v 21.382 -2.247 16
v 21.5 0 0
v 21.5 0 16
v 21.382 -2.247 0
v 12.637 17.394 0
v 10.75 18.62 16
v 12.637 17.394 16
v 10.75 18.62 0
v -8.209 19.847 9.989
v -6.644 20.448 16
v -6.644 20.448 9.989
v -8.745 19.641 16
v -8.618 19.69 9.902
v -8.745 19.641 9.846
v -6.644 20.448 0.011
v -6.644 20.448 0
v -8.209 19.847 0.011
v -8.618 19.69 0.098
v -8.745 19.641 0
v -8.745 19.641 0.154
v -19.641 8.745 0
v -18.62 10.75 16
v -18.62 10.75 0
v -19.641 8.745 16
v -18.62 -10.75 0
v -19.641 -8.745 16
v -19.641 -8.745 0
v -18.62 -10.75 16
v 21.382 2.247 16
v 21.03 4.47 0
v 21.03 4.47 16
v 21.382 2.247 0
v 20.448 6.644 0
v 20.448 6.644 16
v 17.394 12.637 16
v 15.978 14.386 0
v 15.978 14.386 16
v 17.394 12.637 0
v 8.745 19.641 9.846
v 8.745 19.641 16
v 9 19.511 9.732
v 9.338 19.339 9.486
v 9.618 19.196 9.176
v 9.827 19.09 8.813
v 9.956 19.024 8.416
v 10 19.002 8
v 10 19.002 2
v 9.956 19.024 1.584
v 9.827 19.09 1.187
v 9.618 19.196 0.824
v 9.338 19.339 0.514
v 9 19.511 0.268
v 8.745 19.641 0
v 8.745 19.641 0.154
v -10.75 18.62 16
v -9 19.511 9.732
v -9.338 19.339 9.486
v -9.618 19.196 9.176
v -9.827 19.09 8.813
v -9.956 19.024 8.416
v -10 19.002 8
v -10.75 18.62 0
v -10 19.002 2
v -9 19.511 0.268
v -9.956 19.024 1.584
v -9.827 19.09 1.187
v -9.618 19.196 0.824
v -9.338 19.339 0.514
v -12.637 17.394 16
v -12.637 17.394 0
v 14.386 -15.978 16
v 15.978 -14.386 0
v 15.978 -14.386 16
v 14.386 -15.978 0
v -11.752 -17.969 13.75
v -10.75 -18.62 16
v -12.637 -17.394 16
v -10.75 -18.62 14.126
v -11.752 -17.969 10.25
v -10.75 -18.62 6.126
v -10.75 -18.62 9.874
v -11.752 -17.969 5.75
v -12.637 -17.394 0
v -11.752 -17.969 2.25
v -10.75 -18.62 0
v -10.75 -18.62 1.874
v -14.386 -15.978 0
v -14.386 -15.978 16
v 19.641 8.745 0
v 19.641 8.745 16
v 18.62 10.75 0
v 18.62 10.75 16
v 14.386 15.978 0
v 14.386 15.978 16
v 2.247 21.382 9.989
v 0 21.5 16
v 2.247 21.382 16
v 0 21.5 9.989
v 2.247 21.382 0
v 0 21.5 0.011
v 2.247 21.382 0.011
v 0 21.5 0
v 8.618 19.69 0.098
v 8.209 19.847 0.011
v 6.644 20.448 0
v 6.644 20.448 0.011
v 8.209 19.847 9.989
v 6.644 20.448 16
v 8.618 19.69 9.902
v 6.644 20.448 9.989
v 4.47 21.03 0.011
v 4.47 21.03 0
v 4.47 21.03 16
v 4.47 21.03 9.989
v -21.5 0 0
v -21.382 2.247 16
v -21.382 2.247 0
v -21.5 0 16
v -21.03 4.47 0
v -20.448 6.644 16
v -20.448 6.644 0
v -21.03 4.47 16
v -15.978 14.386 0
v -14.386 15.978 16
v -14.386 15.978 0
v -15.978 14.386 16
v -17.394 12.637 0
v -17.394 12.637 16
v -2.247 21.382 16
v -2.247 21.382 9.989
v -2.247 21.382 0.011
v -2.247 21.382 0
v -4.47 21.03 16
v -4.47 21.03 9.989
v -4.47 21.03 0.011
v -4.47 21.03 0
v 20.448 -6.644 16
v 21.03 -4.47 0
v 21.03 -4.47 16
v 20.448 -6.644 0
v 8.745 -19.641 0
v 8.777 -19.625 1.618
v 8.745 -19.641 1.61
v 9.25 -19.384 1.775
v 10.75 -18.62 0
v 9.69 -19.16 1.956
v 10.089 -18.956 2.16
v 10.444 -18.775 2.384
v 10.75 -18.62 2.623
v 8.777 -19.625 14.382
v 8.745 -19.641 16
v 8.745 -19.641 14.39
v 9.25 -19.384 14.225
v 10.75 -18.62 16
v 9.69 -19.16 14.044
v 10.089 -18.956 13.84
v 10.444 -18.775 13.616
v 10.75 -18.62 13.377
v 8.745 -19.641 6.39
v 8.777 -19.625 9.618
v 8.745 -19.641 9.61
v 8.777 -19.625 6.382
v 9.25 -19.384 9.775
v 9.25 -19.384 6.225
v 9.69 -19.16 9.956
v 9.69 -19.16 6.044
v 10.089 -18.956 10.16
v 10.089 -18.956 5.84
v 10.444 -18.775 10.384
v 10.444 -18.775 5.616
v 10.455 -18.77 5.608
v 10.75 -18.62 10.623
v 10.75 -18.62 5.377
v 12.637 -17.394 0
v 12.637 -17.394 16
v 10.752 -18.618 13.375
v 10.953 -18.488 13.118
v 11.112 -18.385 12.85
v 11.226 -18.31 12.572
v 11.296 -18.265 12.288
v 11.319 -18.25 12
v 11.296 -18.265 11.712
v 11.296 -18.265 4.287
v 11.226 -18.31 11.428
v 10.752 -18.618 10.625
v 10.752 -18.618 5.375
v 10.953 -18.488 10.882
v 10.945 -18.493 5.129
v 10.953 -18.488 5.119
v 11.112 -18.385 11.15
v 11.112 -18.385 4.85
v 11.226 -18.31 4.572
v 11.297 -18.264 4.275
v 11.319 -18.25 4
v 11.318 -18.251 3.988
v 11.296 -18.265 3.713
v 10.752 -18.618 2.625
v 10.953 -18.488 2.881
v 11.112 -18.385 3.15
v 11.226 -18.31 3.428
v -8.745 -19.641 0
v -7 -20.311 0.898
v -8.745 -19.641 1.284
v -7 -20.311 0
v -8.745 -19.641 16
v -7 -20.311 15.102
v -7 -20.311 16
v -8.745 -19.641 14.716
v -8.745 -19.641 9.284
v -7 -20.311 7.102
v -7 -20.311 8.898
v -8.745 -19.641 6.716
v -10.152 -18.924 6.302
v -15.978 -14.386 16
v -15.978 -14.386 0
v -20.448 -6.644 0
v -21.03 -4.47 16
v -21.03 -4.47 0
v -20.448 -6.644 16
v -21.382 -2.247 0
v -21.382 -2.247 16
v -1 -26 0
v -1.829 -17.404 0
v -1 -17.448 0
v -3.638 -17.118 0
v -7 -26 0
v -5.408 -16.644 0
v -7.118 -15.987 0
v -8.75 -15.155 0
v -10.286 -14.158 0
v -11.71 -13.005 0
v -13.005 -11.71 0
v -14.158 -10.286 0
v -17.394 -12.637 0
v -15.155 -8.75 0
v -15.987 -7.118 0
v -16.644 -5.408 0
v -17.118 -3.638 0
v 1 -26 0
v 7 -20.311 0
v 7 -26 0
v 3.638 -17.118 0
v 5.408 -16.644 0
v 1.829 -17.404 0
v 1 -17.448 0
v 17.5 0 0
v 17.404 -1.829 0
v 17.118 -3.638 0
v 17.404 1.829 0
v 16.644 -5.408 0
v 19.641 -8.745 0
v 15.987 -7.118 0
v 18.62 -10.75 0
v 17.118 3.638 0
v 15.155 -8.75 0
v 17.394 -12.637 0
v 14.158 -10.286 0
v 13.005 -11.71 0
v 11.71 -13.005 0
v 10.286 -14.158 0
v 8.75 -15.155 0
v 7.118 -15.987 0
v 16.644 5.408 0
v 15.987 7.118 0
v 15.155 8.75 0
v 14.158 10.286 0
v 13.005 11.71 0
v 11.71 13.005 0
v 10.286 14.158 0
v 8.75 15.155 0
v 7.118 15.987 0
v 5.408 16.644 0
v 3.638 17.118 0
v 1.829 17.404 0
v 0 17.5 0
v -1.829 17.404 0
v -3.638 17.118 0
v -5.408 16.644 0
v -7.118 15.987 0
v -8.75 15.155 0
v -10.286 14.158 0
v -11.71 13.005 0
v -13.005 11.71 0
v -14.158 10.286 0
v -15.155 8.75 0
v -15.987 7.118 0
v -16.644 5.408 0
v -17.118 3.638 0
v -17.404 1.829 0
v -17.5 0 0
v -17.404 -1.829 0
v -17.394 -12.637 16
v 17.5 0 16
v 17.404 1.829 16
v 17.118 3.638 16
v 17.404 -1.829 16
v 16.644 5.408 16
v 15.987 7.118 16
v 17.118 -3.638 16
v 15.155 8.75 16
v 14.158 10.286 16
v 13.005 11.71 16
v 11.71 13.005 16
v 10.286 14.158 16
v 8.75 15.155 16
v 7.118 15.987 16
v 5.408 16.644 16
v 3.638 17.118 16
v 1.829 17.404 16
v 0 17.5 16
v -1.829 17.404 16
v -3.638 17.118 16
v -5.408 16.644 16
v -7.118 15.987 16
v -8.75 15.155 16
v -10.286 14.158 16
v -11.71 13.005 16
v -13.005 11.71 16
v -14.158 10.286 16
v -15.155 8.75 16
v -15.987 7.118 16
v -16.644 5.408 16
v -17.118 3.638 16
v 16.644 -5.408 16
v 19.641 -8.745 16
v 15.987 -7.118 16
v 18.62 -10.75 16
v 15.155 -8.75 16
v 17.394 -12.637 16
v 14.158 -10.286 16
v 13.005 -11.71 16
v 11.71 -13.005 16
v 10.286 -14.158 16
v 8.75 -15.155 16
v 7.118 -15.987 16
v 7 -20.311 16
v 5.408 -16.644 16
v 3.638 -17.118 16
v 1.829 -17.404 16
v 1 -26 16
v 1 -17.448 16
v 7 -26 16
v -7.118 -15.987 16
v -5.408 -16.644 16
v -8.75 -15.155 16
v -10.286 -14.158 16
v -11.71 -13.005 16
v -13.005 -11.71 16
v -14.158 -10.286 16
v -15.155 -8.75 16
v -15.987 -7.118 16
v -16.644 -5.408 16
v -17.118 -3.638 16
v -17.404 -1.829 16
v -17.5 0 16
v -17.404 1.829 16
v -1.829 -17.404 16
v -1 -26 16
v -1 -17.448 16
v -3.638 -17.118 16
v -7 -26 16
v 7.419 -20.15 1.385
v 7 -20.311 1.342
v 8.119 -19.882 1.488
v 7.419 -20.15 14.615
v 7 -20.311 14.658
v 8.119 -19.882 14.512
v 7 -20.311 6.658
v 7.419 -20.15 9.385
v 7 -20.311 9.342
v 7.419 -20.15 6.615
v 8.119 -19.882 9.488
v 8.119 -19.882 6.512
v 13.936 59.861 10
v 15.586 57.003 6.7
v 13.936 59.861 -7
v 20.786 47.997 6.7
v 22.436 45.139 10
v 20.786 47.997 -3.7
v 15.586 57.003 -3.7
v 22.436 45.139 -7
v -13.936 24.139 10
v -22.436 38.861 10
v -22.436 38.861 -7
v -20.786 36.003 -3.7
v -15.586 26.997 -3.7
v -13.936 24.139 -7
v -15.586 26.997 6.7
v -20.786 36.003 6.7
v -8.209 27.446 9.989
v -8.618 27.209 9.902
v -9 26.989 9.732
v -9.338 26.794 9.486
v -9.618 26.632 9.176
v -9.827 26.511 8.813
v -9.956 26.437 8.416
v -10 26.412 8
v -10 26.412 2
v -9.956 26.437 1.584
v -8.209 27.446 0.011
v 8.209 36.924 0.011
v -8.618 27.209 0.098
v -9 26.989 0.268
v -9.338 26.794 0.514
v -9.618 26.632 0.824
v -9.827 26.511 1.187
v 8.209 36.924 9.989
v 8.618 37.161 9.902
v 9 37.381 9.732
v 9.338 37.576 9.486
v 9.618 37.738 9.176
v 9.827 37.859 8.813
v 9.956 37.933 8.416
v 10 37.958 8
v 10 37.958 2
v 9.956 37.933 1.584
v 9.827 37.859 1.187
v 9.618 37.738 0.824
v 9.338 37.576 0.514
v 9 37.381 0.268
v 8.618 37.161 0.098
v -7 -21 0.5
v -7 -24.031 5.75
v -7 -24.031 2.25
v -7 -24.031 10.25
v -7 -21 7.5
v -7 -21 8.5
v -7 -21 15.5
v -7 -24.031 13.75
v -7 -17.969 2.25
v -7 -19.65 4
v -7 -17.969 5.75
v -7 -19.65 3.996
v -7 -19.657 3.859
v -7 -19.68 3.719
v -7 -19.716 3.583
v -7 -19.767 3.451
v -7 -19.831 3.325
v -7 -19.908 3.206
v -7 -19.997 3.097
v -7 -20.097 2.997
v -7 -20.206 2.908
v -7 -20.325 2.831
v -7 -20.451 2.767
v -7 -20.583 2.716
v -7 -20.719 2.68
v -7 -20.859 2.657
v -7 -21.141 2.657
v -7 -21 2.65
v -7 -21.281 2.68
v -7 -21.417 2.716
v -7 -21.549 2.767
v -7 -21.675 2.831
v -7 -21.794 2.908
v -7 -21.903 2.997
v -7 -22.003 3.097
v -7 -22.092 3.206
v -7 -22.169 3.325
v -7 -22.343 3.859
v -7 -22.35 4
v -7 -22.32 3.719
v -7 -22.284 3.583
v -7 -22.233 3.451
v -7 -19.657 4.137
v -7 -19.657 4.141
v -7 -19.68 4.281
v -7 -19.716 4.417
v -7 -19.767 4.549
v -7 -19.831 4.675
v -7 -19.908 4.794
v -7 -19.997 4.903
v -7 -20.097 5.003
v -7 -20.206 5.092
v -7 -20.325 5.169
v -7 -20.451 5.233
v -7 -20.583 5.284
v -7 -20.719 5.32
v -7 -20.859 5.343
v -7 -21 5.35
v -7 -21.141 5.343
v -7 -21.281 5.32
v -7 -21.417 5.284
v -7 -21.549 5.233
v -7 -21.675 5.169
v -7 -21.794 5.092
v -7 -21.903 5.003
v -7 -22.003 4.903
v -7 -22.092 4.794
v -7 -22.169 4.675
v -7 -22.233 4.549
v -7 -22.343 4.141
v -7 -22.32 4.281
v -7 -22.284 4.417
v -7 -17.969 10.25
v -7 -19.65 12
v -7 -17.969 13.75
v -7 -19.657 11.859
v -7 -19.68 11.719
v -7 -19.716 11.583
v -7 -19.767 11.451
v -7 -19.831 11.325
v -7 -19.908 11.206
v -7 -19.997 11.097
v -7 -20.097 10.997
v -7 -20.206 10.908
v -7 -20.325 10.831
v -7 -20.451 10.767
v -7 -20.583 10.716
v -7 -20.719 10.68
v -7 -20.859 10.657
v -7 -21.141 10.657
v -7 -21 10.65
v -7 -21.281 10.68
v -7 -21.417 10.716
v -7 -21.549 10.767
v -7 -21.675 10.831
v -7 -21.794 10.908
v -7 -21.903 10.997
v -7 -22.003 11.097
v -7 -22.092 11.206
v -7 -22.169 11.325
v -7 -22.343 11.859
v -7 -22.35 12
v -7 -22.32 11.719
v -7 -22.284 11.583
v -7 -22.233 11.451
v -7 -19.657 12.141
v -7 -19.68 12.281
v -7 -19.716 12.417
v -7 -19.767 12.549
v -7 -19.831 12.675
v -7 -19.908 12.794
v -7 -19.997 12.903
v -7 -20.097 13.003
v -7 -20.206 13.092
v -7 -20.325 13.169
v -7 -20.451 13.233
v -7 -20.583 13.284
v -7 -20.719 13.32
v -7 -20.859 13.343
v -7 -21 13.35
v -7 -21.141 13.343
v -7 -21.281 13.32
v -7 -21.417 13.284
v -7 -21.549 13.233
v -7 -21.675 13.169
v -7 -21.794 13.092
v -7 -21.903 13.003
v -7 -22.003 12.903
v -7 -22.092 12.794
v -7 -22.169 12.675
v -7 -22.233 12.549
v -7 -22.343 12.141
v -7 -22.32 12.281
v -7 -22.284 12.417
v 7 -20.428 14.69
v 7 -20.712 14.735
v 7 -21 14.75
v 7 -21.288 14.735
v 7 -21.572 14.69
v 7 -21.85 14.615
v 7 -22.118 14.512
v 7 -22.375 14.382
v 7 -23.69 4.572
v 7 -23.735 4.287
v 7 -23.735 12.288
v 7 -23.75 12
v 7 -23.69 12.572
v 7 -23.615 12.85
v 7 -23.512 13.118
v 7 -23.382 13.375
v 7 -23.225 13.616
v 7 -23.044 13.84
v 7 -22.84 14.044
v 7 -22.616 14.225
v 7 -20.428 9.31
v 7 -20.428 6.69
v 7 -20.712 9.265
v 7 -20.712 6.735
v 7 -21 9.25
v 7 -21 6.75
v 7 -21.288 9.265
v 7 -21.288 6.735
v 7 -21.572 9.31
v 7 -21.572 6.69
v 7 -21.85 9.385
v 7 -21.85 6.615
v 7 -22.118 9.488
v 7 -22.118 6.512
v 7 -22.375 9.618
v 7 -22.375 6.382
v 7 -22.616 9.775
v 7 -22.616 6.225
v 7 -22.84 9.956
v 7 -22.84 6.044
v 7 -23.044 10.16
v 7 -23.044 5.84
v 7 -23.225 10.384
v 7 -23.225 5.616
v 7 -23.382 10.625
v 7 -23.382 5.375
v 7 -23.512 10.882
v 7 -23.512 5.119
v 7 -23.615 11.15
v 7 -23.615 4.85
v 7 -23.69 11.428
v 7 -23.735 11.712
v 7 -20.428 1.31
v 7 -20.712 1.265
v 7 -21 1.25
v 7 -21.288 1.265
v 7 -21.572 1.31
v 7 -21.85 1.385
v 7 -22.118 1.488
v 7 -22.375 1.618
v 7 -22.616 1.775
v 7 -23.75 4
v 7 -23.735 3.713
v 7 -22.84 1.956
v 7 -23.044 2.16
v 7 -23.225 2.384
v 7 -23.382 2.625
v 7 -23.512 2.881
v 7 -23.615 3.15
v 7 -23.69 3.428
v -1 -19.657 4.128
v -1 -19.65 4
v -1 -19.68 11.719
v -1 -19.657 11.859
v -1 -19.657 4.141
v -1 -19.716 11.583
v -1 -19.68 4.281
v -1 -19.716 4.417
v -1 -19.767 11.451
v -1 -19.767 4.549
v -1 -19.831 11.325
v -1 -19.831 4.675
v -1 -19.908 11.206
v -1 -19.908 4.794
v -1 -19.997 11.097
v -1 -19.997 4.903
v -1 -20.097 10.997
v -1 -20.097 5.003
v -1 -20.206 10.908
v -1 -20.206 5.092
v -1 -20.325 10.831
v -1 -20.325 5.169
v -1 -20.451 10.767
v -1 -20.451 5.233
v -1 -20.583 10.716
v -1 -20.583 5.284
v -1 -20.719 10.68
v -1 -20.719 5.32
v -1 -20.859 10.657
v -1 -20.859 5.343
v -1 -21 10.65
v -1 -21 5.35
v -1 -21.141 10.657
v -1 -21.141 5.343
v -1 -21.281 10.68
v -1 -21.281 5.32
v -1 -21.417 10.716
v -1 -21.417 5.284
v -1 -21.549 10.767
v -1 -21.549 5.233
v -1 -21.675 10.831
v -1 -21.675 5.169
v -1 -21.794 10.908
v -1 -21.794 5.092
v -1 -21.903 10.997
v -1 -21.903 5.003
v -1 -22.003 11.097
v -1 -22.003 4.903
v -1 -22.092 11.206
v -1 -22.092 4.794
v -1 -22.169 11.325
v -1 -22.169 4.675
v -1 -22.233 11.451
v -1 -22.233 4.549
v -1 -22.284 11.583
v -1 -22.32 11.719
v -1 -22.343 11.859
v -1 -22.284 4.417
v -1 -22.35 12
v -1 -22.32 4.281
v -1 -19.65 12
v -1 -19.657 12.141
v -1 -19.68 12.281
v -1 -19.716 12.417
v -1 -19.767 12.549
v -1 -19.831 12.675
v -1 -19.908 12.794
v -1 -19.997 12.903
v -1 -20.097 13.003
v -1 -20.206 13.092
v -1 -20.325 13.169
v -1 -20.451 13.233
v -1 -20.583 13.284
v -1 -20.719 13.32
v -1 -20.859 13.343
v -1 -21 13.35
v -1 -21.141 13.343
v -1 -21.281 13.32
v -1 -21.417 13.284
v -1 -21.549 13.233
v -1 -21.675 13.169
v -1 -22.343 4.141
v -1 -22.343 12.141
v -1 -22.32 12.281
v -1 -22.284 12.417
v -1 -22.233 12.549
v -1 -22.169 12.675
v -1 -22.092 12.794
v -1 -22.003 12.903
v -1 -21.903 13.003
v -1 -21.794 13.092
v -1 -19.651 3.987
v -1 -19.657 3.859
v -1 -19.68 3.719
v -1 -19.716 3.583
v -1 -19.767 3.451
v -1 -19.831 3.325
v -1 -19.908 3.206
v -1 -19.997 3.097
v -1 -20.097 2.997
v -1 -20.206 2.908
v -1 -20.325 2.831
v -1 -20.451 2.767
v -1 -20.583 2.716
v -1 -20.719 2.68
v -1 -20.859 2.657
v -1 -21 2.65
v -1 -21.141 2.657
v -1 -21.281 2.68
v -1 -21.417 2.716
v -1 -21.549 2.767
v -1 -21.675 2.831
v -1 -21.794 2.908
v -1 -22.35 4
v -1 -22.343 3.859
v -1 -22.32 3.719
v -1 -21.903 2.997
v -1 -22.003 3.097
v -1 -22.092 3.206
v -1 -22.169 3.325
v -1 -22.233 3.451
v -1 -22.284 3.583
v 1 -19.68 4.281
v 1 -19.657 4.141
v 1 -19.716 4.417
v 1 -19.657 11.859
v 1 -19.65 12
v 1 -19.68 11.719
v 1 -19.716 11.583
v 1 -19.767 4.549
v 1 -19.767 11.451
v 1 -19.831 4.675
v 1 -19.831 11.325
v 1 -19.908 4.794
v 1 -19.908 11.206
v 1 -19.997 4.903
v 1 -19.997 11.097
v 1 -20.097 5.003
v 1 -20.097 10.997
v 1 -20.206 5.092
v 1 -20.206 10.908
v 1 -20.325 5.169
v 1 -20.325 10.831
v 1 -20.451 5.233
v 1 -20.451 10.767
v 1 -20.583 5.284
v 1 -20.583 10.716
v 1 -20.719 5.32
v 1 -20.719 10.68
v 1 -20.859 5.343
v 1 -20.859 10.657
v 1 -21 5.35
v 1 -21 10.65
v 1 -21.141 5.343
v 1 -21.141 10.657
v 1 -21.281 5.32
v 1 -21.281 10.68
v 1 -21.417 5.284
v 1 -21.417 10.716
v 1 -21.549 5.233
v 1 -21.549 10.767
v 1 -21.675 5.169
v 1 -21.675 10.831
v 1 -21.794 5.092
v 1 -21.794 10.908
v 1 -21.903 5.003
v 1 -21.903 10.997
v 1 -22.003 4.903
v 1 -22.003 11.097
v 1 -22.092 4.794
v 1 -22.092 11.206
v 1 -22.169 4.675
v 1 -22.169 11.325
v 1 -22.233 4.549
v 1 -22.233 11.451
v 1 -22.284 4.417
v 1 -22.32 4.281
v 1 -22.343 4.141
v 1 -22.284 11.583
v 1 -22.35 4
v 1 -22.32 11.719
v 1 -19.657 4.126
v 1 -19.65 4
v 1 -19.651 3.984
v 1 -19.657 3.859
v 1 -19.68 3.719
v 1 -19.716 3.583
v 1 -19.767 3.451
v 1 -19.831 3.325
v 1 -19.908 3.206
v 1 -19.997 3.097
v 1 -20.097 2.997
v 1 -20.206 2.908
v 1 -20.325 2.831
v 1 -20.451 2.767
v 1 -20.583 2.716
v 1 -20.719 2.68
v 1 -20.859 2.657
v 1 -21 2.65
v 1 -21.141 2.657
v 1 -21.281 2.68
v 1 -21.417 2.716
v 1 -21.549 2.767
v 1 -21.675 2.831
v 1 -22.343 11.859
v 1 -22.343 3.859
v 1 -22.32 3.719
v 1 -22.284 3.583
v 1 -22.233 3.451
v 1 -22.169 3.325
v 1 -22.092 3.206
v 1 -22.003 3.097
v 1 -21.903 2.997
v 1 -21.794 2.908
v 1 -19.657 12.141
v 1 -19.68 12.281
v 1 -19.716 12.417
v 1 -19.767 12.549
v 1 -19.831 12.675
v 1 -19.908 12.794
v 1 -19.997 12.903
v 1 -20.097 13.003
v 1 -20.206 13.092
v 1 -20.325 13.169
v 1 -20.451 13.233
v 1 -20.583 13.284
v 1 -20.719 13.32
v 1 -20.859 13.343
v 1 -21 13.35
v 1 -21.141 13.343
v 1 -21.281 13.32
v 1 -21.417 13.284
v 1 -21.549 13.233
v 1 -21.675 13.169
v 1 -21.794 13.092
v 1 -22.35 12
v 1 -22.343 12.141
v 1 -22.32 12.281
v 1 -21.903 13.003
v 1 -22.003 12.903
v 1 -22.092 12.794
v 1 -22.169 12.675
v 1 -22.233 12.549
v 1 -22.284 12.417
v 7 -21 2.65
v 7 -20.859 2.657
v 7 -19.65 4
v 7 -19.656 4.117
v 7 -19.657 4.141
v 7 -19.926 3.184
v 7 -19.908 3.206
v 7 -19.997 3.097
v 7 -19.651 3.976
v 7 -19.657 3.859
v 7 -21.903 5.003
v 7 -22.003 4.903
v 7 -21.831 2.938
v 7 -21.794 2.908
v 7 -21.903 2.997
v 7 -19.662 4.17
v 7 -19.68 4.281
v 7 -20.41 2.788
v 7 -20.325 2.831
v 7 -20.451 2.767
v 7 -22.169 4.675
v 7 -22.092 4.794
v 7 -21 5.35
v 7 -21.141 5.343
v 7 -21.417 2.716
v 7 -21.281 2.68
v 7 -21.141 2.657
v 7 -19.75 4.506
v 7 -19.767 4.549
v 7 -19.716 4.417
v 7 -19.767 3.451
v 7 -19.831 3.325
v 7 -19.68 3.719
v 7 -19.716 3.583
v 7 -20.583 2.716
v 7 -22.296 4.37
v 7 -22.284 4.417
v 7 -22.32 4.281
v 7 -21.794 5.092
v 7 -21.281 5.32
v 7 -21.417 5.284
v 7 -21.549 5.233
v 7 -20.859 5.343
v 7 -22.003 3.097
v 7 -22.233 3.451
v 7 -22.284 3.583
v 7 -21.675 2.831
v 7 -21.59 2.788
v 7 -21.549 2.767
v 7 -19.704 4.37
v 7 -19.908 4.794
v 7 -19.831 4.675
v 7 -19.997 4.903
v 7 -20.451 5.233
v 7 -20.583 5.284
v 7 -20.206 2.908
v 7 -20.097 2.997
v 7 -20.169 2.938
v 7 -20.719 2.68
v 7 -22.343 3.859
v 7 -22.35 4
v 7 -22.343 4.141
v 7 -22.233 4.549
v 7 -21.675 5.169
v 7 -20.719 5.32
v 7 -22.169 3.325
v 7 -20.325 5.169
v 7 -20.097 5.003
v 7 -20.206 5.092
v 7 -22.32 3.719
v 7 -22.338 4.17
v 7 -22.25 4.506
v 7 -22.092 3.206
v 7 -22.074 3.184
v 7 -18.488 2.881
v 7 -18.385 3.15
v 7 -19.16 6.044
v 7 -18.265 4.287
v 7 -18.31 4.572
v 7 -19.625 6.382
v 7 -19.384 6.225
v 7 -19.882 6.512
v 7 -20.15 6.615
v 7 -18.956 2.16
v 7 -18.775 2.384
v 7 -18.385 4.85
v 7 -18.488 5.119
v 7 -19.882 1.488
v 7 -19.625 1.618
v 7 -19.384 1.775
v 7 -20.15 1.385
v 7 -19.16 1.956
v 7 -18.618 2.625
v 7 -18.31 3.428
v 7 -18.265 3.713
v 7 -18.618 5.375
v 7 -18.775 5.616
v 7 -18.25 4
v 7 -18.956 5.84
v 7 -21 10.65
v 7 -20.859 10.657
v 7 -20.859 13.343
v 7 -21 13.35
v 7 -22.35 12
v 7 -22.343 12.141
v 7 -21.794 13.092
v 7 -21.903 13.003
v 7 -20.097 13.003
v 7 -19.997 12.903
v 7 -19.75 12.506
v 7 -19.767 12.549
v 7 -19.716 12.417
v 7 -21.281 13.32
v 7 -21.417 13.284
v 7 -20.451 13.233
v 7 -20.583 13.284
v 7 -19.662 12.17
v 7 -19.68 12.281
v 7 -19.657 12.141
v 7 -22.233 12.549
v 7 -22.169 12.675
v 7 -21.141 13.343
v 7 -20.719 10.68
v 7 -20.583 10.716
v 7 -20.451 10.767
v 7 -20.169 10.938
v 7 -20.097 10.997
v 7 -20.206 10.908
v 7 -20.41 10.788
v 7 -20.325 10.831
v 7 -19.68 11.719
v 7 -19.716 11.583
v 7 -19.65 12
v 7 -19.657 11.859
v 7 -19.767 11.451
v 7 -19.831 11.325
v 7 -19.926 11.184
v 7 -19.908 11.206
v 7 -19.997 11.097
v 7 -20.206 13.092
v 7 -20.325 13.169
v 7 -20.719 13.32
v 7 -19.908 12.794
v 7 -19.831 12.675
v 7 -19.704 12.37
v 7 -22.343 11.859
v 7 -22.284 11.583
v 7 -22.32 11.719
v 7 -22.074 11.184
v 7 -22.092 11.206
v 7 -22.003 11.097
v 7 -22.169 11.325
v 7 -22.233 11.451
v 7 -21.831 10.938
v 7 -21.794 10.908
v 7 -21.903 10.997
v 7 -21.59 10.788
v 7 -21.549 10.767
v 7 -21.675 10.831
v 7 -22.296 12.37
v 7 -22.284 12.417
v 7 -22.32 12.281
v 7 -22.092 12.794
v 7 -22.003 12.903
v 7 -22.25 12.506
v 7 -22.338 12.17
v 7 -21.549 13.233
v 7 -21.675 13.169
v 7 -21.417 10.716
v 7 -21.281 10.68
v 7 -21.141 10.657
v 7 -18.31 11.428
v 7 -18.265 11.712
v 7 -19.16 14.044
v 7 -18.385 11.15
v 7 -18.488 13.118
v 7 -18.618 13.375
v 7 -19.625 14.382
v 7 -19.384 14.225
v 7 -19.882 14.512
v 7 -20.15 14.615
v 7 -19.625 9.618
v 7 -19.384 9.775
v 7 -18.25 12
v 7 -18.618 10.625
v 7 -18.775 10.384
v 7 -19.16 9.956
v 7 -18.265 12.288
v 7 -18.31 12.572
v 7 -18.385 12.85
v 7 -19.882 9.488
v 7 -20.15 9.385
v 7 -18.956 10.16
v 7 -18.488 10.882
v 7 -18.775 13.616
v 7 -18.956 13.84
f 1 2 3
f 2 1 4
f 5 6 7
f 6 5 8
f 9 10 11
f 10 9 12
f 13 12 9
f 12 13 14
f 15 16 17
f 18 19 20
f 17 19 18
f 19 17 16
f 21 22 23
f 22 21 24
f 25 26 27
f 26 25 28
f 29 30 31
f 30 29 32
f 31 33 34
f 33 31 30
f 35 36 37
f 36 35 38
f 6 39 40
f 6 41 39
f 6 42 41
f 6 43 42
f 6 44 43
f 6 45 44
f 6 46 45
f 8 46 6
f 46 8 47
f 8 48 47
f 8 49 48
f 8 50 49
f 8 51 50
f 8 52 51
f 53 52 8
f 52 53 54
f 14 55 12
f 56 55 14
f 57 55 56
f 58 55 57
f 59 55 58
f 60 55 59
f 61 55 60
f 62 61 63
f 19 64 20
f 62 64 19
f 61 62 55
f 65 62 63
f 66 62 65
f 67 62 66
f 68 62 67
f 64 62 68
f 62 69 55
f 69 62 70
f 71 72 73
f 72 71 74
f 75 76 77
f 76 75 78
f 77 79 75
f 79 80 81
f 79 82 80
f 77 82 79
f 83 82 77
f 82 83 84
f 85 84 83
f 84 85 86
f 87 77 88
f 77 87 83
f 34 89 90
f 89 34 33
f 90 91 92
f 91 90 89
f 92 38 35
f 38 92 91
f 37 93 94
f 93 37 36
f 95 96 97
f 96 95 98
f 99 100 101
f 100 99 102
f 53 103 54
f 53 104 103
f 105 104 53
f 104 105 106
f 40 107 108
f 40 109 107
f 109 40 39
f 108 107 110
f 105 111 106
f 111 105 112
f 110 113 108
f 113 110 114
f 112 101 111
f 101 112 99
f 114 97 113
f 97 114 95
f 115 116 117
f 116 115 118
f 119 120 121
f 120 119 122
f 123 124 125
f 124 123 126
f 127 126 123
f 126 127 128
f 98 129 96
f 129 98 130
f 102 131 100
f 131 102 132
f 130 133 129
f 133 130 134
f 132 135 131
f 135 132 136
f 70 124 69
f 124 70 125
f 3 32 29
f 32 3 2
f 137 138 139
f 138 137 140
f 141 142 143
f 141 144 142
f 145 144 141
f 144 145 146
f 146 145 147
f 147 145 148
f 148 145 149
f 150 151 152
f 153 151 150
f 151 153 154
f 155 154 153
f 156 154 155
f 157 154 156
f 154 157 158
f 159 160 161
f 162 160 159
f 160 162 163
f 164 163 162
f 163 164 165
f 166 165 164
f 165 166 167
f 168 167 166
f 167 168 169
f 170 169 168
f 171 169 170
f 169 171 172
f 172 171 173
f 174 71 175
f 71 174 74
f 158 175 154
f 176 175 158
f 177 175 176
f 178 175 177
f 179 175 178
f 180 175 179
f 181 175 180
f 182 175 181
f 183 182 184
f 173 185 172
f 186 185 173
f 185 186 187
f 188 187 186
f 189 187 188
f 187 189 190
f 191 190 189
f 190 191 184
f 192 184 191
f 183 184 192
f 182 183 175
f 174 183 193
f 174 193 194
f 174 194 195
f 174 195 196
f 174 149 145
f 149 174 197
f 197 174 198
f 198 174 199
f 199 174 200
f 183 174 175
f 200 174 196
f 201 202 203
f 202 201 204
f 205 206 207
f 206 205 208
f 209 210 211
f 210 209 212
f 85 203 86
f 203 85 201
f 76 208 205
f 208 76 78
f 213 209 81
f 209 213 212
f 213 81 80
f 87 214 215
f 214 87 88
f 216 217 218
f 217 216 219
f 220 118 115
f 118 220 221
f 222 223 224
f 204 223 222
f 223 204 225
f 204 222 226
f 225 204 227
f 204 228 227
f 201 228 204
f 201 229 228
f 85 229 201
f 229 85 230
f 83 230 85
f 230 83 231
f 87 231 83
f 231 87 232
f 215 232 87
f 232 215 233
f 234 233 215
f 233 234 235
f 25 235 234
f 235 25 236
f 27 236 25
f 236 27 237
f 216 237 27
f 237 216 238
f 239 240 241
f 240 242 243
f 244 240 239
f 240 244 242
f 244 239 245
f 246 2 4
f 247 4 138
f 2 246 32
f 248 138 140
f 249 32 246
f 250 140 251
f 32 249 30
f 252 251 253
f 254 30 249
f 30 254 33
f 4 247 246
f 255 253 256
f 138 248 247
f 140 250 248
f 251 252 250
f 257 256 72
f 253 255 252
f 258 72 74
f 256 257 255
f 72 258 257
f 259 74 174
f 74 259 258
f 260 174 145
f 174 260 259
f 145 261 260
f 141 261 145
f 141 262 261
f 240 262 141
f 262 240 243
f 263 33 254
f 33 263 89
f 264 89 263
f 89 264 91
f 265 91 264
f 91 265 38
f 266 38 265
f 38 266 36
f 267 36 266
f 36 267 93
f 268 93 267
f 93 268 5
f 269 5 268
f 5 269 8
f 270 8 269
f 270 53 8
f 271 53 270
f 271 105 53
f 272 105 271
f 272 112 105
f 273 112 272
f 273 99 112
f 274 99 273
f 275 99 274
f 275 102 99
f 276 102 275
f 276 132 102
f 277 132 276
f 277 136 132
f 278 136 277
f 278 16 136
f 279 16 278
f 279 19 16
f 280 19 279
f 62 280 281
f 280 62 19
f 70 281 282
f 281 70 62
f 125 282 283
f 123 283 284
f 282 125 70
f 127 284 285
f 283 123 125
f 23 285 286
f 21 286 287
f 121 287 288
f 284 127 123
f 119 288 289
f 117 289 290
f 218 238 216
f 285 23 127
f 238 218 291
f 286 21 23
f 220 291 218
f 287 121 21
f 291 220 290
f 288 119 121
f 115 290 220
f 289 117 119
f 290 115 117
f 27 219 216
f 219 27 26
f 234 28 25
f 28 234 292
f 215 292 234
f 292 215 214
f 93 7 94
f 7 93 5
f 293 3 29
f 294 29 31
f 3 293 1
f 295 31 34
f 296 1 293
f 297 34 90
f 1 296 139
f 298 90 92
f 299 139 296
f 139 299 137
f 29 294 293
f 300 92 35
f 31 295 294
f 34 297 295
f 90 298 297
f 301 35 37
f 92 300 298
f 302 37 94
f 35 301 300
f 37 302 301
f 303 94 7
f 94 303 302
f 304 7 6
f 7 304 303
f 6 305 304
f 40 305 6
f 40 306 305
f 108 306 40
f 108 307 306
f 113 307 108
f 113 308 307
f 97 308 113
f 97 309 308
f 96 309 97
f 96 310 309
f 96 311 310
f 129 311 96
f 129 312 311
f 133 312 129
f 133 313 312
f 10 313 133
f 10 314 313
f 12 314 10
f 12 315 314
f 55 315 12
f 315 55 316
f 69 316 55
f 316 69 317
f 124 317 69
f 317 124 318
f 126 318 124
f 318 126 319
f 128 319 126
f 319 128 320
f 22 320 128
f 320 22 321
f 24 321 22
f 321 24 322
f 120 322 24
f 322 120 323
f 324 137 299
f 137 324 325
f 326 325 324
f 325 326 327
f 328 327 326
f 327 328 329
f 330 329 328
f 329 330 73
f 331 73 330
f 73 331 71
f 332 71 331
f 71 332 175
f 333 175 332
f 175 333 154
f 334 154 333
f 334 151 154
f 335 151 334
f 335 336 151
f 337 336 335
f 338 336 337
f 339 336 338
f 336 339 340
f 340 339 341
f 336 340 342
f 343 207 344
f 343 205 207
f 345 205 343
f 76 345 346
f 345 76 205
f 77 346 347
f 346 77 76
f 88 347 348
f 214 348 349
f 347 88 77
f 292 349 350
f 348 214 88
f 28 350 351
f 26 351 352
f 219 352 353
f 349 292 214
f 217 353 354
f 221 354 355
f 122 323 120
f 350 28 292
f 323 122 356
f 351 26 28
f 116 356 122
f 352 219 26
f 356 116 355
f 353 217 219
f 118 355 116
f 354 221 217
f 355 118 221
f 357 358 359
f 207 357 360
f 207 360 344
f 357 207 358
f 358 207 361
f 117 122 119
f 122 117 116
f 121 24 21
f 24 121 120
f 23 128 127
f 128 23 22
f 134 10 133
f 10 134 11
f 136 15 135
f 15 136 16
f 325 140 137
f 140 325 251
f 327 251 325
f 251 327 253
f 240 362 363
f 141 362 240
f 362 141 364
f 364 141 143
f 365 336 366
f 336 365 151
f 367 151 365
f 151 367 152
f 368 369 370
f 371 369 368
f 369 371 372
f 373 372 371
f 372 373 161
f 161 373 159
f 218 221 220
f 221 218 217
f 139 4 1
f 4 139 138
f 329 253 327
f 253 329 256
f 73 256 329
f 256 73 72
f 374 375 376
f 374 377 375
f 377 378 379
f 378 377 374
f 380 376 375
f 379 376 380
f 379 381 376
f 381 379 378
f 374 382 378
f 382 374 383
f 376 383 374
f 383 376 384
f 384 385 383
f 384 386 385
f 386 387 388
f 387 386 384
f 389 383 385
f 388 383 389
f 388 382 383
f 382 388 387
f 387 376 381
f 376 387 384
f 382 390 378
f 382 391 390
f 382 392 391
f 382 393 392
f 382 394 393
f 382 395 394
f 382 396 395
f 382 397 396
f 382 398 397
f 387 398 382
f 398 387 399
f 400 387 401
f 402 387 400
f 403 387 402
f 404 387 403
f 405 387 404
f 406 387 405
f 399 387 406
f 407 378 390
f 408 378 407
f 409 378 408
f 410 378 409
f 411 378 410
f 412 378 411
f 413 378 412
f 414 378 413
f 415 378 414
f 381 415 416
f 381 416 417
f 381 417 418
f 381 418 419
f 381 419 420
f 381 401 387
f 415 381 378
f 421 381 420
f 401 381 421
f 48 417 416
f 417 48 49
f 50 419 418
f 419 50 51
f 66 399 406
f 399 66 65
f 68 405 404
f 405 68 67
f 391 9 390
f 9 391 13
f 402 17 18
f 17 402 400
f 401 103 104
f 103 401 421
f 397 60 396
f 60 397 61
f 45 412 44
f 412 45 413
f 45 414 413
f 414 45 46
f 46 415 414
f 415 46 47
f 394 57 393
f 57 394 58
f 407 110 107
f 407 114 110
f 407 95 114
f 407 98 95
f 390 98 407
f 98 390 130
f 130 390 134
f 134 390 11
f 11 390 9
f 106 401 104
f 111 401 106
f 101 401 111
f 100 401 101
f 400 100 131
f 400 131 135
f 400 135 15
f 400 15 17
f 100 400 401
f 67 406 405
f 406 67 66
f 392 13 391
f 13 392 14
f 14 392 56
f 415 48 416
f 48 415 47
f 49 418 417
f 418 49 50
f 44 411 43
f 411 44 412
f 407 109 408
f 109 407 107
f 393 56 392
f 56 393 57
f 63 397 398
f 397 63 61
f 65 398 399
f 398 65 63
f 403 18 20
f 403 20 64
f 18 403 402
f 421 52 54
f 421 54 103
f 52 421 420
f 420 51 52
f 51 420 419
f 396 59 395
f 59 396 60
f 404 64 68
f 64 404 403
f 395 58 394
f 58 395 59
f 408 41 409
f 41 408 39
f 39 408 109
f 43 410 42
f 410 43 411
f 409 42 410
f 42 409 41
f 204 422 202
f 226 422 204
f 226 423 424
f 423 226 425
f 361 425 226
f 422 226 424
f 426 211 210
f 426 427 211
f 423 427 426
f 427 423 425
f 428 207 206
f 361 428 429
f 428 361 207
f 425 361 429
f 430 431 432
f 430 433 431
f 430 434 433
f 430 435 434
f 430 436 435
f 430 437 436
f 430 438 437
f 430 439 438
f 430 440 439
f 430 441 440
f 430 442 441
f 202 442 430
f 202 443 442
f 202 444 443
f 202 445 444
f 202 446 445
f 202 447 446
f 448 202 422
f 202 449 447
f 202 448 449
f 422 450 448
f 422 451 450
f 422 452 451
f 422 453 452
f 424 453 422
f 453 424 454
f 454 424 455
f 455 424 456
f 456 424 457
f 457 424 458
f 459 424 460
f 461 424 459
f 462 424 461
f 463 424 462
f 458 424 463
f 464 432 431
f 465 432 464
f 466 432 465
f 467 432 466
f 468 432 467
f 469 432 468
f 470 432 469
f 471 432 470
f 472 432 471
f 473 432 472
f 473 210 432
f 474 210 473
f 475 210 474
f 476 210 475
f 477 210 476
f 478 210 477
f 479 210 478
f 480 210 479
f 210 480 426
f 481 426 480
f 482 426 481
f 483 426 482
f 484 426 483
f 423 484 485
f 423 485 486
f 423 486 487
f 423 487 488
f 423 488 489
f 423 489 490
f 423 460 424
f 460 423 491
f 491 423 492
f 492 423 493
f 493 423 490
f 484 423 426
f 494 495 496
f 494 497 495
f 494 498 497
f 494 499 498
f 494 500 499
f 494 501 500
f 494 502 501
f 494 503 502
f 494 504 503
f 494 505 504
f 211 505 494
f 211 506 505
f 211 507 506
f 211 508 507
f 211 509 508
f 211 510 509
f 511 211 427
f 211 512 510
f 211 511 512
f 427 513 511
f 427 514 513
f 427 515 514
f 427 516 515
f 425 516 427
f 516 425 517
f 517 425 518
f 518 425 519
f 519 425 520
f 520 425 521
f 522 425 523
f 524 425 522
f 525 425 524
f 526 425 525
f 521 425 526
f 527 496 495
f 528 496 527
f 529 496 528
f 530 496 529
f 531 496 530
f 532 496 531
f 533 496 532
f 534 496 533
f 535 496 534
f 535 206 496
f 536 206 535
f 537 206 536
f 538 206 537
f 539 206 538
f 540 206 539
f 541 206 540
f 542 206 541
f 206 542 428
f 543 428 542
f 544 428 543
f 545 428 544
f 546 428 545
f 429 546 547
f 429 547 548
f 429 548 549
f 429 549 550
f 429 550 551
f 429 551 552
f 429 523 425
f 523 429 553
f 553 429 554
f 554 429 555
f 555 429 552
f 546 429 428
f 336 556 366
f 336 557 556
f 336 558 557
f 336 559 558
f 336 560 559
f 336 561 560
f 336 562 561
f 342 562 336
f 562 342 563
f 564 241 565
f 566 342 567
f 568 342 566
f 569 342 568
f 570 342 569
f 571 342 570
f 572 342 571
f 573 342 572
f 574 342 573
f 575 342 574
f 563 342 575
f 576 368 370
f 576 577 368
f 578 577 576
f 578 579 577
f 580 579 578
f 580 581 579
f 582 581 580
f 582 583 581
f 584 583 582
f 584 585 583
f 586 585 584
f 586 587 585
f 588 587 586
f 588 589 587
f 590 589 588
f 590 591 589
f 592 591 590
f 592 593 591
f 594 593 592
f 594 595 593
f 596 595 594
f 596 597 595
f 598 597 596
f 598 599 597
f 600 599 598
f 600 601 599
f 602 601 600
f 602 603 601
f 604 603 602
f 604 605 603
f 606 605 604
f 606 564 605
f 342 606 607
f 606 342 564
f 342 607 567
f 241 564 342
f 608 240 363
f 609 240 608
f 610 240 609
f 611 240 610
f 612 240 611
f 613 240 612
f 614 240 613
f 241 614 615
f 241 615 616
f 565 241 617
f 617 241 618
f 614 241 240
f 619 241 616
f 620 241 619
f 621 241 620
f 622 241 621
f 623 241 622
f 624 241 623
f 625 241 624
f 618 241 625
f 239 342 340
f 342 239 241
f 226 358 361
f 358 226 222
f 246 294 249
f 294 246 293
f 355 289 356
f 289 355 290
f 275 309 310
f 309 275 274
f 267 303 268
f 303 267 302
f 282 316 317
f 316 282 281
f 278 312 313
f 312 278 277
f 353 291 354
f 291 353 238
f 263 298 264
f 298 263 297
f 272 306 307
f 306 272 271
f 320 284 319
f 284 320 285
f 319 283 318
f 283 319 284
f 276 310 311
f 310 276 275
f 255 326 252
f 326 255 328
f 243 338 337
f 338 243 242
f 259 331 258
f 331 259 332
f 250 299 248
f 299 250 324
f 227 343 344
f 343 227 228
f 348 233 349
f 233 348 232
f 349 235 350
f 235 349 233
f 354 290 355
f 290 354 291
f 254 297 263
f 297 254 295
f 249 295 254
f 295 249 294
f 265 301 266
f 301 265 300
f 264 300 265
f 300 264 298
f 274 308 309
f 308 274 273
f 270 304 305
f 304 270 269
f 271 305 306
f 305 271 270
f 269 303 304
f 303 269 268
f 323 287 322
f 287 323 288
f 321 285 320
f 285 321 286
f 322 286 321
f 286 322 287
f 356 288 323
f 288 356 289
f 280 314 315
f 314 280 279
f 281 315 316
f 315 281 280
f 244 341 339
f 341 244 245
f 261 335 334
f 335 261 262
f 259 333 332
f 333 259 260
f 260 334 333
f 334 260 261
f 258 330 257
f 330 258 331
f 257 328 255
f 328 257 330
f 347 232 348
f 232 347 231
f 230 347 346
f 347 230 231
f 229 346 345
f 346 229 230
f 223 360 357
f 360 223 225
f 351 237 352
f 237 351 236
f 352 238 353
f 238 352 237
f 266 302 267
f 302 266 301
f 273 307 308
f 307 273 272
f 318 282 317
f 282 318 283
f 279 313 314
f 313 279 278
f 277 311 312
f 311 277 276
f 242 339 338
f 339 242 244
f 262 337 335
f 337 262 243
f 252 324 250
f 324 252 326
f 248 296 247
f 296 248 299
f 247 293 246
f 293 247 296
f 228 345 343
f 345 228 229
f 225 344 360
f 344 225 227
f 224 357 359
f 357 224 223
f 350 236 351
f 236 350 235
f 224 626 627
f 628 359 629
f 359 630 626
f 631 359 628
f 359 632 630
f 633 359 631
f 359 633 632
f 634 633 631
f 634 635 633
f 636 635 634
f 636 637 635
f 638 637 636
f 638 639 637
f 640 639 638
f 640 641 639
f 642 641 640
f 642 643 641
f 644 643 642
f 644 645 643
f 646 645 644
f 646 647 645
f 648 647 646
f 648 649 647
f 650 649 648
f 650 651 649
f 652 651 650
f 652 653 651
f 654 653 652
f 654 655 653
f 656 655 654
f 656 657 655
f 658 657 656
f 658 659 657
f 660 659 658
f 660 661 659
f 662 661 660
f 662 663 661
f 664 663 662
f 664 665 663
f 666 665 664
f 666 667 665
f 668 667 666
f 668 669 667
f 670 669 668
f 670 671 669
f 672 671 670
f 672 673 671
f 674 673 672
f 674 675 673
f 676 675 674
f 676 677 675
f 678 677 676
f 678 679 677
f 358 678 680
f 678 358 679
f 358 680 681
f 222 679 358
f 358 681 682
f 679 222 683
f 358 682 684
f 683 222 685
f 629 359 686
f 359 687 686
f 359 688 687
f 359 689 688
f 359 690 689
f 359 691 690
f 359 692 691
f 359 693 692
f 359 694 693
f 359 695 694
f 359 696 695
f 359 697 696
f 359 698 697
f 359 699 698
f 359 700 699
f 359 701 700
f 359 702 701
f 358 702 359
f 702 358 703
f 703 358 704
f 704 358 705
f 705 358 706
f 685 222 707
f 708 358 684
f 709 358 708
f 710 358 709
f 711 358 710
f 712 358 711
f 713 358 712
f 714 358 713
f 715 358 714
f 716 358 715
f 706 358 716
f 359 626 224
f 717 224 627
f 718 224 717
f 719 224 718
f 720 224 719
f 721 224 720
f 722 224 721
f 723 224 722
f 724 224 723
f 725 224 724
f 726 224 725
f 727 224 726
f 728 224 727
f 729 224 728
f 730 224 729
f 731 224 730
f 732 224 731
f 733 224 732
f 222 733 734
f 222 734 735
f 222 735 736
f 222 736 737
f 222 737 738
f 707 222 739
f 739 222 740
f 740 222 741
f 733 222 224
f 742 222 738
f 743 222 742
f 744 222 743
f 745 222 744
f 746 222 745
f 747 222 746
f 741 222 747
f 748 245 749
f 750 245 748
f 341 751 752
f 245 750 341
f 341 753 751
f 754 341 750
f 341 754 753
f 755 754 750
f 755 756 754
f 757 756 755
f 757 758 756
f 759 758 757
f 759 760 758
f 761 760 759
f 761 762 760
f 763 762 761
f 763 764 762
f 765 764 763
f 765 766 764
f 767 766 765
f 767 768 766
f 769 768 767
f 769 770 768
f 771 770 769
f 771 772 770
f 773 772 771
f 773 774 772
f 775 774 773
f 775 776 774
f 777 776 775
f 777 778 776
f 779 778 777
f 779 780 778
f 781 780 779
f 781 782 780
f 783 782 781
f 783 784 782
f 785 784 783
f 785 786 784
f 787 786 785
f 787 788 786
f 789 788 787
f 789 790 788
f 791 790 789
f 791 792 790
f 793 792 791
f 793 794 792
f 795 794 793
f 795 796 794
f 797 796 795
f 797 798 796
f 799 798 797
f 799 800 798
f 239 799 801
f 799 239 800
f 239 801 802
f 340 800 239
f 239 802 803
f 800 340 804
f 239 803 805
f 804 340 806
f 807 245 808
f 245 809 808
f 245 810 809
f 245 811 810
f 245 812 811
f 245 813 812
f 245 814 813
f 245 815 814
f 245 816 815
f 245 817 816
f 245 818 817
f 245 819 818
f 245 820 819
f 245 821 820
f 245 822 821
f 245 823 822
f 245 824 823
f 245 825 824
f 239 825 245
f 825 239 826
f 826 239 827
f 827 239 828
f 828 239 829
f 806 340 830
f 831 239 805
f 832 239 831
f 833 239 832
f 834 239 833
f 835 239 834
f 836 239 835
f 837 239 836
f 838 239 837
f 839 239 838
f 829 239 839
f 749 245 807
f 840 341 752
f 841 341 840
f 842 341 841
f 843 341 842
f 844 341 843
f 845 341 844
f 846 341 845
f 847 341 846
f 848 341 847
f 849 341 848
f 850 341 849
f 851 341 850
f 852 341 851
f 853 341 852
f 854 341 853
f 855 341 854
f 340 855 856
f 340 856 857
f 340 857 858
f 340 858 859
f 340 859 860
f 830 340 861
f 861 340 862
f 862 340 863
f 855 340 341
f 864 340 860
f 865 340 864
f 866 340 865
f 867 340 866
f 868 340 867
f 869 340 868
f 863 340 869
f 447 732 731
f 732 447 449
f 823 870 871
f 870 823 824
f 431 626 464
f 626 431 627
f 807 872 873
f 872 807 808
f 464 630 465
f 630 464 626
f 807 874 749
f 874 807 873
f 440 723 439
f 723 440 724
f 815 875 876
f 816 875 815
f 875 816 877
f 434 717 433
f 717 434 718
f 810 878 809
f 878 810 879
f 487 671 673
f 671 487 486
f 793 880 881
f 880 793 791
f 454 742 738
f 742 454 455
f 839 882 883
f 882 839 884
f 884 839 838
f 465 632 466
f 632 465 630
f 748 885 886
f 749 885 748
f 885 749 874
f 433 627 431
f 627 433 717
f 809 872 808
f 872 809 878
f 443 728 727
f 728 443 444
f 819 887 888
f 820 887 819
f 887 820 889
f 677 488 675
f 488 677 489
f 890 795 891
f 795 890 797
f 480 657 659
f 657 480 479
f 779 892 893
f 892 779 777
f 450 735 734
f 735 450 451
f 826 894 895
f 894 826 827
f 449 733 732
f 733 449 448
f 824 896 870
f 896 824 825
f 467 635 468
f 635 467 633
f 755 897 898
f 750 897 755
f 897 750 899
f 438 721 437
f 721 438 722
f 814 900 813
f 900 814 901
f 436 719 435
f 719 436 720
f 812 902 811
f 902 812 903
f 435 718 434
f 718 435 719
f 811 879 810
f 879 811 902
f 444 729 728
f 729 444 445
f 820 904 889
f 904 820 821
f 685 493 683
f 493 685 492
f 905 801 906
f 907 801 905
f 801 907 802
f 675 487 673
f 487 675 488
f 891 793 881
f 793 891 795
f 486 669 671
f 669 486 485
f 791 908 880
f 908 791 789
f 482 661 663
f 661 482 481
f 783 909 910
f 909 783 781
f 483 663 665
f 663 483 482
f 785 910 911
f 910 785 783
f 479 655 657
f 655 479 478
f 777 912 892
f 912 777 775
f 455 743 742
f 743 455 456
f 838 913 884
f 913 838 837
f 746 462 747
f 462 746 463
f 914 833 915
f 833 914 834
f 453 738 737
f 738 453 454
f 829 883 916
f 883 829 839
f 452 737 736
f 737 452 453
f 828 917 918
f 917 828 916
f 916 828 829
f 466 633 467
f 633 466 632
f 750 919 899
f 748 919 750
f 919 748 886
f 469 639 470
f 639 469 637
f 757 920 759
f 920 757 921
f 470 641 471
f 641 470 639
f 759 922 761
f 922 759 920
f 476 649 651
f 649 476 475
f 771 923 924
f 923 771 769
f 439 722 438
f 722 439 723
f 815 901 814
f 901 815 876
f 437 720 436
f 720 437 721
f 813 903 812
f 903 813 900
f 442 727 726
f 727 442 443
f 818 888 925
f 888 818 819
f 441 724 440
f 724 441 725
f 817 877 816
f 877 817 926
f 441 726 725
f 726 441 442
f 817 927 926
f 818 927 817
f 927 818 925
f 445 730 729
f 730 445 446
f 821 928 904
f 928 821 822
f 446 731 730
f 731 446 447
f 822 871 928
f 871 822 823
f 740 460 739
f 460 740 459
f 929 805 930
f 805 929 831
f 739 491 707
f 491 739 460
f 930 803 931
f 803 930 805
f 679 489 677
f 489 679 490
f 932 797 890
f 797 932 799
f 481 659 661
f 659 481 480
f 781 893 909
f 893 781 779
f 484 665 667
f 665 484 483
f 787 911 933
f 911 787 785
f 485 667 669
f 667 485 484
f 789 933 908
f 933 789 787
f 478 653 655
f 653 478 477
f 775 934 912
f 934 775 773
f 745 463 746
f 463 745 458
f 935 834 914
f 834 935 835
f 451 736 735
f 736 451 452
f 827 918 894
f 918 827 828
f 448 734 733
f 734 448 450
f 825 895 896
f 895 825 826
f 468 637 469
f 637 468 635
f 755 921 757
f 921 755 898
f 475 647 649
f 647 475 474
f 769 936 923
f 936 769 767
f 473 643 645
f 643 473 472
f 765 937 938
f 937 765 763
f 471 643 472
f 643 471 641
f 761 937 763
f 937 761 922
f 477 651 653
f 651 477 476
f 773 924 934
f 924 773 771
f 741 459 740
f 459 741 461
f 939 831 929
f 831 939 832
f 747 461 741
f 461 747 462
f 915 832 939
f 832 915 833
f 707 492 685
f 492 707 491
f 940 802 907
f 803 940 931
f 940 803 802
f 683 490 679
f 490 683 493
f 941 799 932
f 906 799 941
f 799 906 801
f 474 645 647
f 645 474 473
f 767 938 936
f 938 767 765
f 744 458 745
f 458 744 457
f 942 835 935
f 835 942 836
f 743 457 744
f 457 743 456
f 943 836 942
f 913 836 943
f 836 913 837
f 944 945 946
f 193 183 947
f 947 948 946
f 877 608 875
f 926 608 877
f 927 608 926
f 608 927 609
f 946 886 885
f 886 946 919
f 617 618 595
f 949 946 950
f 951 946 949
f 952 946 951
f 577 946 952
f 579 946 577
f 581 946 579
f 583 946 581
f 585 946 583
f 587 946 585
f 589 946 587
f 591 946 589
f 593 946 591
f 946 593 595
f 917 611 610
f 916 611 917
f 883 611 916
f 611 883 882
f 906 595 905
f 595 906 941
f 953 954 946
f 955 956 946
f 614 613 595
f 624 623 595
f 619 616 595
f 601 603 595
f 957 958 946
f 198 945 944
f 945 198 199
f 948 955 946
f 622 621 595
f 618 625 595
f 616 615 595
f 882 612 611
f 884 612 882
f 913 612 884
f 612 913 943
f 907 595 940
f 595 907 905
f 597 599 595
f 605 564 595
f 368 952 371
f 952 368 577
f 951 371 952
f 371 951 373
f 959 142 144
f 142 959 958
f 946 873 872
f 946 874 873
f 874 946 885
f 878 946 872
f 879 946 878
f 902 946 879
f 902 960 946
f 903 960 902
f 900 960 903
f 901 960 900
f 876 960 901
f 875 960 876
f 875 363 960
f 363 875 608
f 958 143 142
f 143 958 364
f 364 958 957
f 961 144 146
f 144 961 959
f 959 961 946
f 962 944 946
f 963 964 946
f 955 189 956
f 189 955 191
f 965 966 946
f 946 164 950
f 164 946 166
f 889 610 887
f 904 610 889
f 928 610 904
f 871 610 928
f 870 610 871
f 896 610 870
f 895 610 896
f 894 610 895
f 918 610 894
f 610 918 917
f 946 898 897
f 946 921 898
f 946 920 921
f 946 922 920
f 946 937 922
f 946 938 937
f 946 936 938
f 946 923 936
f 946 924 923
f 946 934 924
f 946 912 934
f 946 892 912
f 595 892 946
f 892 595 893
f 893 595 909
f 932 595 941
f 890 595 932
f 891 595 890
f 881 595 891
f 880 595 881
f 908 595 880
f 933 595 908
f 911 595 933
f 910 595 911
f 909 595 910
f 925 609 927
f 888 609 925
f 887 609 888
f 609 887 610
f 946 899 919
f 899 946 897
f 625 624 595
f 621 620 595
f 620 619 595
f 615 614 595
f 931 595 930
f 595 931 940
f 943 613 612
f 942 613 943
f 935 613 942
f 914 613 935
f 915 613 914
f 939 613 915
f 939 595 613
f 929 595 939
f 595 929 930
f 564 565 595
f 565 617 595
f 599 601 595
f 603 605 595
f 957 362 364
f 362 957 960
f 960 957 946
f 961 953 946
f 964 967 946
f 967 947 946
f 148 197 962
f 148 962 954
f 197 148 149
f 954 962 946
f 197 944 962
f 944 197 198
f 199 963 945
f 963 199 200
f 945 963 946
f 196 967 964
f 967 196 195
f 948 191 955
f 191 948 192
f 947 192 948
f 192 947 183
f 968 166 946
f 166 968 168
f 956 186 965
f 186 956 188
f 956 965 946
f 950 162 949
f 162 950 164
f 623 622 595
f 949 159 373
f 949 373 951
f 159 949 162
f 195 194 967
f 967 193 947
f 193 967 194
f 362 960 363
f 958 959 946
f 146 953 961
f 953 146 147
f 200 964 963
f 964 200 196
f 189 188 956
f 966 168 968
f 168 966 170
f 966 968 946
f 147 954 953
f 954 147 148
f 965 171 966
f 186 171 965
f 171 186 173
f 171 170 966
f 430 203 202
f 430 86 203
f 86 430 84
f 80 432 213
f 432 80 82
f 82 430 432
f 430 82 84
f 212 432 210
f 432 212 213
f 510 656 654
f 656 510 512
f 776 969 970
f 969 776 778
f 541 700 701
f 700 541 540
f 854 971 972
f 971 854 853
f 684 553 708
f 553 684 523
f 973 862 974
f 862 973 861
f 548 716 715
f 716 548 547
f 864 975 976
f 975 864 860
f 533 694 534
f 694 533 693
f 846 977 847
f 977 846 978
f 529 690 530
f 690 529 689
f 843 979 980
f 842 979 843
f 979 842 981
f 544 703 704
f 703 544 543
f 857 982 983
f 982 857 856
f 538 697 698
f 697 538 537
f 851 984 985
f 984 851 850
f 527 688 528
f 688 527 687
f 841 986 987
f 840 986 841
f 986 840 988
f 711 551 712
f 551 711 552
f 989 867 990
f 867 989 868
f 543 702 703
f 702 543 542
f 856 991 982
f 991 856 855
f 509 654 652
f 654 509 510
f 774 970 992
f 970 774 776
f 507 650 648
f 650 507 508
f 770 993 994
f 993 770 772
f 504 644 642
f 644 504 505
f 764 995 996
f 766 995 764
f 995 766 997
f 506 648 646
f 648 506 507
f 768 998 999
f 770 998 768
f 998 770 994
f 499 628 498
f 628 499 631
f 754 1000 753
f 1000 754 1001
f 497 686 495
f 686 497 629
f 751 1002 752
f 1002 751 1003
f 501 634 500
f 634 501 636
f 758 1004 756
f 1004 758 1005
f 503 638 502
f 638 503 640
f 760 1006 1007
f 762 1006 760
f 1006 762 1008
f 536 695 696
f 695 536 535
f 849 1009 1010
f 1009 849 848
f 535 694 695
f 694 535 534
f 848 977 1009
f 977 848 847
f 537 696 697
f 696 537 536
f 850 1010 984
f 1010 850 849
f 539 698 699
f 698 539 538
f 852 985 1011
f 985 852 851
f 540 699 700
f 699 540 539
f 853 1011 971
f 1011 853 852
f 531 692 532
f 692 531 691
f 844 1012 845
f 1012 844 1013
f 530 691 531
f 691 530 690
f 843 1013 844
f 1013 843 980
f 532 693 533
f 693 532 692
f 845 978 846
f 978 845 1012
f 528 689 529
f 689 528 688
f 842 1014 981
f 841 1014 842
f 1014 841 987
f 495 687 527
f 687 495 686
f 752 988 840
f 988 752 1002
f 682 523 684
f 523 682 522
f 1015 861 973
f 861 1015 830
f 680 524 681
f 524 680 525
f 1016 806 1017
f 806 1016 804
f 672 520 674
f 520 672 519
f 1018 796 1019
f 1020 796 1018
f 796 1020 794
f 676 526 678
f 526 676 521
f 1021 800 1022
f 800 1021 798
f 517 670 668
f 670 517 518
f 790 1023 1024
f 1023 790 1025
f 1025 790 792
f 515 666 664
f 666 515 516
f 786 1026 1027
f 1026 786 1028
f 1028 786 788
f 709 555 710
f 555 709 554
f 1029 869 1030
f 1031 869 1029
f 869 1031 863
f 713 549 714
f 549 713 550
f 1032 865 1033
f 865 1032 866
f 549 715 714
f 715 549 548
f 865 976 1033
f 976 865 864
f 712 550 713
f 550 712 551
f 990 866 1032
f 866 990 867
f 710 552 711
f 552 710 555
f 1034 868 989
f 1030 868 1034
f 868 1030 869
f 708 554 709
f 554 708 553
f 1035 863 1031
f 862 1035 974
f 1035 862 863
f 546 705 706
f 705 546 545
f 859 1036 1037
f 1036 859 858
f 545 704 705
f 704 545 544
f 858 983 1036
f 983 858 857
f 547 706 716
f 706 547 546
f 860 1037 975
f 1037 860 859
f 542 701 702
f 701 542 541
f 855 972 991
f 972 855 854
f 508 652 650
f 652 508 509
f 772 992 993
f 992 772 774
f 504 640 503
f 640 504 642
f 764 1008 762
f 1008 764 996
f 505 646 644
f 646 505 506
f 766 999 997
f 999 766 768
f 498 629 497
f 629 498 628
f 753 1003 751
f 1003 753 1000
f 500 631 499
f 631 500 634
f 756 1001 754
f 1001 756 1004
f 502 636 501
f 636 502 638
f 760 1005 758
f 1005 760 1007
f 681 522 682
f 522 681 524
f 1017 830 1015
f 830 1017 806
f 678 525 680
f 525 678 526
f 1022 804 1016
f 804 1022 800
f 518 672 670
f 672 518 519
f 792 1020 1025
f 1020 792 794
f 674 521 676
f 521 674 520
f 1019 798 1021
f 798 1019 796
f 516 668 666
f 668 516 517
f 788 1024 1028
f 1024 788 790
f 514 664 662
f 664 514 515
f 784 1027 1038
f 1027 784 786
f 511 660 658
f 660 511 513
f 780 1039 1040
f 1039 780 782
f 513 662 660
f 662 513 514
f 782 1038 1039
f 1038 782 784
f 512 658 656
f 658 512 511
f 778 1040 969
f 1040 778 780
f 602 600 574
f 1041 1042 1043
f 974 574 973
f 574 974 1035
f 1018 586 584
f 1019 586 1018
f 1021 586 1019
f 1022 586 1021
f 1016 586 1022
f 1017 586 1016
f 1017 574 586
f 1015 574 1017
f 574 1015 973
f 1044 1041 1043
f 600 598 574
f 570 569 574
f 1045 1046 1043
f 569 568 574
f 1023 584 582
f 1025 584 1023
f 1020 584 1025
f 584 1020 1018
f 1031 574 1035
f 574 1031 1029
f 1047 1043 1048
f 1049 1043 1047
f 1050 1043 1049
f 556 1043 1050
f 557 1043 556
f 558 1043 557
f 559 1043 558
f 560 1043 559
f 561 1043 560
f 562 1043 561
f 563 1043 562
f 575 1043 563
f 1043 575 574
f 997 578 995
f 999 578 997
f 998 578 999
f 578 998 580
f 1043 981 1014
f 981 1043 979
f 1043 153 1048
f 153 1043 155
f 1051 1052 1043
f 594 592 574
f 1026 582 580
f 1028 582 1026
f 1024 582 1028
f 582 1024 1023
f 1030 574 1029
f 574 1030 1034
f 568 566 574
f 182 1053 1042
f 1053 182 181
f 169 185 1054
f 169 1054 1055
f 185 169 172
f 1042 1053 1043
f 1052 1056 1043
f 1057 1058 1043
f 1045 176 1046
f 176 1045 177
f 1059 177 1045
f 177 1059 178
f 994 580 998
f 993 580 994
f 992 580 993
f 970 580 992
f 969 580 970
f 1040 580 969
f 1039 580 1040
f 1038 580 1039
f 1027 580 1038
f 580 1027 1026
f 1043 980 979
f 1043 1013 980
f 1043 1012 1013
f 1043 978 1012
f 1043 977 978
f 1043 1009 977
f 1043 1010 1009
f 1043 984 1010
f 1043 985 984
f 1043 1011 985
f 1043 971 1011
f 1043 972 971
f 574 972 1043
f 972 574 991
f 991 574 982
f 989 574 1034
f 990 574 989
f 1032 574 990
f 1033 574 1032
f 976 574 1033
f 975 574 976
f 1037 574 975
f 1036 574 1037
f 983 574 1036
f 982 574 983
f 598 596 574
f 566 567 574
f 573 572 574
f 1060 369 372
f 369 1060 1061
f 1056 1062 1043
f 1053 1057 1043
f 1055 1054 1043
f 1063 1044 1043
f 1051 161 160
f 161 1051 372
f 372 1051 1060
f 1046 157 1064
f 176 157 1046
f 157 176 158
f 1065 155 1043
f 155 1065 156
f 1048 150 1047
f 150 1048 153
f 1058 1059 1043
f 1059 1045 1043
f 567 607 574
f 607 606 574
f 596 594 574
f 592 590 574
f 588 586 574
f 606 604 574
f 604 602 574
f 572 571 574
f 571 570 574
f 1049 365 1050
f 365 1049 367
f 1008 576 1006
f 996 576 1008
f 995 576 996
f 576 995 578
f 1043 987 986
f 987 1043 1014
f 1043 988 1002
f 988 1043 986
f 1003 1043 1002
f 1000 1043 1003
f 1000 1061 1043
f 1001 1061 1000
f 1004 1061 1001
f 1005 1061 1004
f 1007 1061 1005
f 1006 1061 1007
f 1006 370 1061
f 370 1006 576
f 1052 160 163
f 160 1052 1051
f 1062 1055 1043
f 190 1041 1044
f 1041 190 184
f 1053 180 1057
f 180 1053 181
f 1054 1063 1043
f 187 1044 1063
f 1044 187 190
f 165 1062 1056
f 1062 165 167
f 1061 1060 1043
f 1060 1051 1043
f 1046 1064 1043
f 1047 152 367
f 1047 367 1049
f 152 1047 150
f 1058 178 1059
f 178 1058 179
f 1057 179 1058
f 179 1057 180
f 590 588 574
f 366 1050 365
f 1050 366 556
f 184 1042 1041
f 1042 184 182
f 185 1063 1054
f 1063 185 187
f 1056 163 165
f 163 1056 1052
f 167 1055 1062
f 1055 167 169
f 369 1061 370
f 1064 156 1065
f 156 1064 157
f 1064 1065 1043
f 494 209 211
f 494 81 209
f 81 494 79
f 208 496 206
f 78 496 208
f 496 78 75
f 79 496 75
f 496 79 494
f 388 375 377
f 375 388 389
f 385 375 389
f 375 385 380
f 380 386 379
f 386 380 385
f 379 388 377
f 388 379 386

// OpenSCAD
$fn=60;

difference(){
union(){
cylinder(d=43,h=16);
translate([0,42,1.5])rotate([0,0,30])
cube([42,17,17],center=true);
translate([-8,9,2])
minkowski(){
sphere(d=4,$fn=30);
cube(size=[16,32,6]);
}
translate([-7,-26,0]) cube(size=[14,8,16]);
}
translate([0,0,-1]) cylinder(d=35,h=22);
translate([-1,-35,-1]) cube(size=[2,20,22]);

translate ([-10,-21,4])rotate([0,90,0])
cylinder(d=2.7,h=100);
translate ([7,-21,4])rotate([0,90,0])
cylinder(d=5.5,h=100);
translate ([-17,-21,4])rotate([0,90,0])
cylinder(d=7,h=10,$fn=6);

translate ([-10,-21,12])rotate([0,90,0])
cylinder(d=2.7,h=100);
translate ([7,-21,12])rotate([0,90,0])
cylinder(d=5.5,h=100);
translate ([-17,-21,12])rotate([0,90,0])
cylinder(d=7,h=10,$fn=6);

translate([0,60,15])rotate([-90,0,0])
cylinder(d=3,h=100);
translate([0,56,15])rotate([-90,0,0])
cylinder(d=6.5,h=10,$fn=6);

translate([0,90,0])cube([60,40,60],center=true);
translate([0,42,1.5])rotate([0,0,30])
cube([43,10.4,10.4],center=true);
}
